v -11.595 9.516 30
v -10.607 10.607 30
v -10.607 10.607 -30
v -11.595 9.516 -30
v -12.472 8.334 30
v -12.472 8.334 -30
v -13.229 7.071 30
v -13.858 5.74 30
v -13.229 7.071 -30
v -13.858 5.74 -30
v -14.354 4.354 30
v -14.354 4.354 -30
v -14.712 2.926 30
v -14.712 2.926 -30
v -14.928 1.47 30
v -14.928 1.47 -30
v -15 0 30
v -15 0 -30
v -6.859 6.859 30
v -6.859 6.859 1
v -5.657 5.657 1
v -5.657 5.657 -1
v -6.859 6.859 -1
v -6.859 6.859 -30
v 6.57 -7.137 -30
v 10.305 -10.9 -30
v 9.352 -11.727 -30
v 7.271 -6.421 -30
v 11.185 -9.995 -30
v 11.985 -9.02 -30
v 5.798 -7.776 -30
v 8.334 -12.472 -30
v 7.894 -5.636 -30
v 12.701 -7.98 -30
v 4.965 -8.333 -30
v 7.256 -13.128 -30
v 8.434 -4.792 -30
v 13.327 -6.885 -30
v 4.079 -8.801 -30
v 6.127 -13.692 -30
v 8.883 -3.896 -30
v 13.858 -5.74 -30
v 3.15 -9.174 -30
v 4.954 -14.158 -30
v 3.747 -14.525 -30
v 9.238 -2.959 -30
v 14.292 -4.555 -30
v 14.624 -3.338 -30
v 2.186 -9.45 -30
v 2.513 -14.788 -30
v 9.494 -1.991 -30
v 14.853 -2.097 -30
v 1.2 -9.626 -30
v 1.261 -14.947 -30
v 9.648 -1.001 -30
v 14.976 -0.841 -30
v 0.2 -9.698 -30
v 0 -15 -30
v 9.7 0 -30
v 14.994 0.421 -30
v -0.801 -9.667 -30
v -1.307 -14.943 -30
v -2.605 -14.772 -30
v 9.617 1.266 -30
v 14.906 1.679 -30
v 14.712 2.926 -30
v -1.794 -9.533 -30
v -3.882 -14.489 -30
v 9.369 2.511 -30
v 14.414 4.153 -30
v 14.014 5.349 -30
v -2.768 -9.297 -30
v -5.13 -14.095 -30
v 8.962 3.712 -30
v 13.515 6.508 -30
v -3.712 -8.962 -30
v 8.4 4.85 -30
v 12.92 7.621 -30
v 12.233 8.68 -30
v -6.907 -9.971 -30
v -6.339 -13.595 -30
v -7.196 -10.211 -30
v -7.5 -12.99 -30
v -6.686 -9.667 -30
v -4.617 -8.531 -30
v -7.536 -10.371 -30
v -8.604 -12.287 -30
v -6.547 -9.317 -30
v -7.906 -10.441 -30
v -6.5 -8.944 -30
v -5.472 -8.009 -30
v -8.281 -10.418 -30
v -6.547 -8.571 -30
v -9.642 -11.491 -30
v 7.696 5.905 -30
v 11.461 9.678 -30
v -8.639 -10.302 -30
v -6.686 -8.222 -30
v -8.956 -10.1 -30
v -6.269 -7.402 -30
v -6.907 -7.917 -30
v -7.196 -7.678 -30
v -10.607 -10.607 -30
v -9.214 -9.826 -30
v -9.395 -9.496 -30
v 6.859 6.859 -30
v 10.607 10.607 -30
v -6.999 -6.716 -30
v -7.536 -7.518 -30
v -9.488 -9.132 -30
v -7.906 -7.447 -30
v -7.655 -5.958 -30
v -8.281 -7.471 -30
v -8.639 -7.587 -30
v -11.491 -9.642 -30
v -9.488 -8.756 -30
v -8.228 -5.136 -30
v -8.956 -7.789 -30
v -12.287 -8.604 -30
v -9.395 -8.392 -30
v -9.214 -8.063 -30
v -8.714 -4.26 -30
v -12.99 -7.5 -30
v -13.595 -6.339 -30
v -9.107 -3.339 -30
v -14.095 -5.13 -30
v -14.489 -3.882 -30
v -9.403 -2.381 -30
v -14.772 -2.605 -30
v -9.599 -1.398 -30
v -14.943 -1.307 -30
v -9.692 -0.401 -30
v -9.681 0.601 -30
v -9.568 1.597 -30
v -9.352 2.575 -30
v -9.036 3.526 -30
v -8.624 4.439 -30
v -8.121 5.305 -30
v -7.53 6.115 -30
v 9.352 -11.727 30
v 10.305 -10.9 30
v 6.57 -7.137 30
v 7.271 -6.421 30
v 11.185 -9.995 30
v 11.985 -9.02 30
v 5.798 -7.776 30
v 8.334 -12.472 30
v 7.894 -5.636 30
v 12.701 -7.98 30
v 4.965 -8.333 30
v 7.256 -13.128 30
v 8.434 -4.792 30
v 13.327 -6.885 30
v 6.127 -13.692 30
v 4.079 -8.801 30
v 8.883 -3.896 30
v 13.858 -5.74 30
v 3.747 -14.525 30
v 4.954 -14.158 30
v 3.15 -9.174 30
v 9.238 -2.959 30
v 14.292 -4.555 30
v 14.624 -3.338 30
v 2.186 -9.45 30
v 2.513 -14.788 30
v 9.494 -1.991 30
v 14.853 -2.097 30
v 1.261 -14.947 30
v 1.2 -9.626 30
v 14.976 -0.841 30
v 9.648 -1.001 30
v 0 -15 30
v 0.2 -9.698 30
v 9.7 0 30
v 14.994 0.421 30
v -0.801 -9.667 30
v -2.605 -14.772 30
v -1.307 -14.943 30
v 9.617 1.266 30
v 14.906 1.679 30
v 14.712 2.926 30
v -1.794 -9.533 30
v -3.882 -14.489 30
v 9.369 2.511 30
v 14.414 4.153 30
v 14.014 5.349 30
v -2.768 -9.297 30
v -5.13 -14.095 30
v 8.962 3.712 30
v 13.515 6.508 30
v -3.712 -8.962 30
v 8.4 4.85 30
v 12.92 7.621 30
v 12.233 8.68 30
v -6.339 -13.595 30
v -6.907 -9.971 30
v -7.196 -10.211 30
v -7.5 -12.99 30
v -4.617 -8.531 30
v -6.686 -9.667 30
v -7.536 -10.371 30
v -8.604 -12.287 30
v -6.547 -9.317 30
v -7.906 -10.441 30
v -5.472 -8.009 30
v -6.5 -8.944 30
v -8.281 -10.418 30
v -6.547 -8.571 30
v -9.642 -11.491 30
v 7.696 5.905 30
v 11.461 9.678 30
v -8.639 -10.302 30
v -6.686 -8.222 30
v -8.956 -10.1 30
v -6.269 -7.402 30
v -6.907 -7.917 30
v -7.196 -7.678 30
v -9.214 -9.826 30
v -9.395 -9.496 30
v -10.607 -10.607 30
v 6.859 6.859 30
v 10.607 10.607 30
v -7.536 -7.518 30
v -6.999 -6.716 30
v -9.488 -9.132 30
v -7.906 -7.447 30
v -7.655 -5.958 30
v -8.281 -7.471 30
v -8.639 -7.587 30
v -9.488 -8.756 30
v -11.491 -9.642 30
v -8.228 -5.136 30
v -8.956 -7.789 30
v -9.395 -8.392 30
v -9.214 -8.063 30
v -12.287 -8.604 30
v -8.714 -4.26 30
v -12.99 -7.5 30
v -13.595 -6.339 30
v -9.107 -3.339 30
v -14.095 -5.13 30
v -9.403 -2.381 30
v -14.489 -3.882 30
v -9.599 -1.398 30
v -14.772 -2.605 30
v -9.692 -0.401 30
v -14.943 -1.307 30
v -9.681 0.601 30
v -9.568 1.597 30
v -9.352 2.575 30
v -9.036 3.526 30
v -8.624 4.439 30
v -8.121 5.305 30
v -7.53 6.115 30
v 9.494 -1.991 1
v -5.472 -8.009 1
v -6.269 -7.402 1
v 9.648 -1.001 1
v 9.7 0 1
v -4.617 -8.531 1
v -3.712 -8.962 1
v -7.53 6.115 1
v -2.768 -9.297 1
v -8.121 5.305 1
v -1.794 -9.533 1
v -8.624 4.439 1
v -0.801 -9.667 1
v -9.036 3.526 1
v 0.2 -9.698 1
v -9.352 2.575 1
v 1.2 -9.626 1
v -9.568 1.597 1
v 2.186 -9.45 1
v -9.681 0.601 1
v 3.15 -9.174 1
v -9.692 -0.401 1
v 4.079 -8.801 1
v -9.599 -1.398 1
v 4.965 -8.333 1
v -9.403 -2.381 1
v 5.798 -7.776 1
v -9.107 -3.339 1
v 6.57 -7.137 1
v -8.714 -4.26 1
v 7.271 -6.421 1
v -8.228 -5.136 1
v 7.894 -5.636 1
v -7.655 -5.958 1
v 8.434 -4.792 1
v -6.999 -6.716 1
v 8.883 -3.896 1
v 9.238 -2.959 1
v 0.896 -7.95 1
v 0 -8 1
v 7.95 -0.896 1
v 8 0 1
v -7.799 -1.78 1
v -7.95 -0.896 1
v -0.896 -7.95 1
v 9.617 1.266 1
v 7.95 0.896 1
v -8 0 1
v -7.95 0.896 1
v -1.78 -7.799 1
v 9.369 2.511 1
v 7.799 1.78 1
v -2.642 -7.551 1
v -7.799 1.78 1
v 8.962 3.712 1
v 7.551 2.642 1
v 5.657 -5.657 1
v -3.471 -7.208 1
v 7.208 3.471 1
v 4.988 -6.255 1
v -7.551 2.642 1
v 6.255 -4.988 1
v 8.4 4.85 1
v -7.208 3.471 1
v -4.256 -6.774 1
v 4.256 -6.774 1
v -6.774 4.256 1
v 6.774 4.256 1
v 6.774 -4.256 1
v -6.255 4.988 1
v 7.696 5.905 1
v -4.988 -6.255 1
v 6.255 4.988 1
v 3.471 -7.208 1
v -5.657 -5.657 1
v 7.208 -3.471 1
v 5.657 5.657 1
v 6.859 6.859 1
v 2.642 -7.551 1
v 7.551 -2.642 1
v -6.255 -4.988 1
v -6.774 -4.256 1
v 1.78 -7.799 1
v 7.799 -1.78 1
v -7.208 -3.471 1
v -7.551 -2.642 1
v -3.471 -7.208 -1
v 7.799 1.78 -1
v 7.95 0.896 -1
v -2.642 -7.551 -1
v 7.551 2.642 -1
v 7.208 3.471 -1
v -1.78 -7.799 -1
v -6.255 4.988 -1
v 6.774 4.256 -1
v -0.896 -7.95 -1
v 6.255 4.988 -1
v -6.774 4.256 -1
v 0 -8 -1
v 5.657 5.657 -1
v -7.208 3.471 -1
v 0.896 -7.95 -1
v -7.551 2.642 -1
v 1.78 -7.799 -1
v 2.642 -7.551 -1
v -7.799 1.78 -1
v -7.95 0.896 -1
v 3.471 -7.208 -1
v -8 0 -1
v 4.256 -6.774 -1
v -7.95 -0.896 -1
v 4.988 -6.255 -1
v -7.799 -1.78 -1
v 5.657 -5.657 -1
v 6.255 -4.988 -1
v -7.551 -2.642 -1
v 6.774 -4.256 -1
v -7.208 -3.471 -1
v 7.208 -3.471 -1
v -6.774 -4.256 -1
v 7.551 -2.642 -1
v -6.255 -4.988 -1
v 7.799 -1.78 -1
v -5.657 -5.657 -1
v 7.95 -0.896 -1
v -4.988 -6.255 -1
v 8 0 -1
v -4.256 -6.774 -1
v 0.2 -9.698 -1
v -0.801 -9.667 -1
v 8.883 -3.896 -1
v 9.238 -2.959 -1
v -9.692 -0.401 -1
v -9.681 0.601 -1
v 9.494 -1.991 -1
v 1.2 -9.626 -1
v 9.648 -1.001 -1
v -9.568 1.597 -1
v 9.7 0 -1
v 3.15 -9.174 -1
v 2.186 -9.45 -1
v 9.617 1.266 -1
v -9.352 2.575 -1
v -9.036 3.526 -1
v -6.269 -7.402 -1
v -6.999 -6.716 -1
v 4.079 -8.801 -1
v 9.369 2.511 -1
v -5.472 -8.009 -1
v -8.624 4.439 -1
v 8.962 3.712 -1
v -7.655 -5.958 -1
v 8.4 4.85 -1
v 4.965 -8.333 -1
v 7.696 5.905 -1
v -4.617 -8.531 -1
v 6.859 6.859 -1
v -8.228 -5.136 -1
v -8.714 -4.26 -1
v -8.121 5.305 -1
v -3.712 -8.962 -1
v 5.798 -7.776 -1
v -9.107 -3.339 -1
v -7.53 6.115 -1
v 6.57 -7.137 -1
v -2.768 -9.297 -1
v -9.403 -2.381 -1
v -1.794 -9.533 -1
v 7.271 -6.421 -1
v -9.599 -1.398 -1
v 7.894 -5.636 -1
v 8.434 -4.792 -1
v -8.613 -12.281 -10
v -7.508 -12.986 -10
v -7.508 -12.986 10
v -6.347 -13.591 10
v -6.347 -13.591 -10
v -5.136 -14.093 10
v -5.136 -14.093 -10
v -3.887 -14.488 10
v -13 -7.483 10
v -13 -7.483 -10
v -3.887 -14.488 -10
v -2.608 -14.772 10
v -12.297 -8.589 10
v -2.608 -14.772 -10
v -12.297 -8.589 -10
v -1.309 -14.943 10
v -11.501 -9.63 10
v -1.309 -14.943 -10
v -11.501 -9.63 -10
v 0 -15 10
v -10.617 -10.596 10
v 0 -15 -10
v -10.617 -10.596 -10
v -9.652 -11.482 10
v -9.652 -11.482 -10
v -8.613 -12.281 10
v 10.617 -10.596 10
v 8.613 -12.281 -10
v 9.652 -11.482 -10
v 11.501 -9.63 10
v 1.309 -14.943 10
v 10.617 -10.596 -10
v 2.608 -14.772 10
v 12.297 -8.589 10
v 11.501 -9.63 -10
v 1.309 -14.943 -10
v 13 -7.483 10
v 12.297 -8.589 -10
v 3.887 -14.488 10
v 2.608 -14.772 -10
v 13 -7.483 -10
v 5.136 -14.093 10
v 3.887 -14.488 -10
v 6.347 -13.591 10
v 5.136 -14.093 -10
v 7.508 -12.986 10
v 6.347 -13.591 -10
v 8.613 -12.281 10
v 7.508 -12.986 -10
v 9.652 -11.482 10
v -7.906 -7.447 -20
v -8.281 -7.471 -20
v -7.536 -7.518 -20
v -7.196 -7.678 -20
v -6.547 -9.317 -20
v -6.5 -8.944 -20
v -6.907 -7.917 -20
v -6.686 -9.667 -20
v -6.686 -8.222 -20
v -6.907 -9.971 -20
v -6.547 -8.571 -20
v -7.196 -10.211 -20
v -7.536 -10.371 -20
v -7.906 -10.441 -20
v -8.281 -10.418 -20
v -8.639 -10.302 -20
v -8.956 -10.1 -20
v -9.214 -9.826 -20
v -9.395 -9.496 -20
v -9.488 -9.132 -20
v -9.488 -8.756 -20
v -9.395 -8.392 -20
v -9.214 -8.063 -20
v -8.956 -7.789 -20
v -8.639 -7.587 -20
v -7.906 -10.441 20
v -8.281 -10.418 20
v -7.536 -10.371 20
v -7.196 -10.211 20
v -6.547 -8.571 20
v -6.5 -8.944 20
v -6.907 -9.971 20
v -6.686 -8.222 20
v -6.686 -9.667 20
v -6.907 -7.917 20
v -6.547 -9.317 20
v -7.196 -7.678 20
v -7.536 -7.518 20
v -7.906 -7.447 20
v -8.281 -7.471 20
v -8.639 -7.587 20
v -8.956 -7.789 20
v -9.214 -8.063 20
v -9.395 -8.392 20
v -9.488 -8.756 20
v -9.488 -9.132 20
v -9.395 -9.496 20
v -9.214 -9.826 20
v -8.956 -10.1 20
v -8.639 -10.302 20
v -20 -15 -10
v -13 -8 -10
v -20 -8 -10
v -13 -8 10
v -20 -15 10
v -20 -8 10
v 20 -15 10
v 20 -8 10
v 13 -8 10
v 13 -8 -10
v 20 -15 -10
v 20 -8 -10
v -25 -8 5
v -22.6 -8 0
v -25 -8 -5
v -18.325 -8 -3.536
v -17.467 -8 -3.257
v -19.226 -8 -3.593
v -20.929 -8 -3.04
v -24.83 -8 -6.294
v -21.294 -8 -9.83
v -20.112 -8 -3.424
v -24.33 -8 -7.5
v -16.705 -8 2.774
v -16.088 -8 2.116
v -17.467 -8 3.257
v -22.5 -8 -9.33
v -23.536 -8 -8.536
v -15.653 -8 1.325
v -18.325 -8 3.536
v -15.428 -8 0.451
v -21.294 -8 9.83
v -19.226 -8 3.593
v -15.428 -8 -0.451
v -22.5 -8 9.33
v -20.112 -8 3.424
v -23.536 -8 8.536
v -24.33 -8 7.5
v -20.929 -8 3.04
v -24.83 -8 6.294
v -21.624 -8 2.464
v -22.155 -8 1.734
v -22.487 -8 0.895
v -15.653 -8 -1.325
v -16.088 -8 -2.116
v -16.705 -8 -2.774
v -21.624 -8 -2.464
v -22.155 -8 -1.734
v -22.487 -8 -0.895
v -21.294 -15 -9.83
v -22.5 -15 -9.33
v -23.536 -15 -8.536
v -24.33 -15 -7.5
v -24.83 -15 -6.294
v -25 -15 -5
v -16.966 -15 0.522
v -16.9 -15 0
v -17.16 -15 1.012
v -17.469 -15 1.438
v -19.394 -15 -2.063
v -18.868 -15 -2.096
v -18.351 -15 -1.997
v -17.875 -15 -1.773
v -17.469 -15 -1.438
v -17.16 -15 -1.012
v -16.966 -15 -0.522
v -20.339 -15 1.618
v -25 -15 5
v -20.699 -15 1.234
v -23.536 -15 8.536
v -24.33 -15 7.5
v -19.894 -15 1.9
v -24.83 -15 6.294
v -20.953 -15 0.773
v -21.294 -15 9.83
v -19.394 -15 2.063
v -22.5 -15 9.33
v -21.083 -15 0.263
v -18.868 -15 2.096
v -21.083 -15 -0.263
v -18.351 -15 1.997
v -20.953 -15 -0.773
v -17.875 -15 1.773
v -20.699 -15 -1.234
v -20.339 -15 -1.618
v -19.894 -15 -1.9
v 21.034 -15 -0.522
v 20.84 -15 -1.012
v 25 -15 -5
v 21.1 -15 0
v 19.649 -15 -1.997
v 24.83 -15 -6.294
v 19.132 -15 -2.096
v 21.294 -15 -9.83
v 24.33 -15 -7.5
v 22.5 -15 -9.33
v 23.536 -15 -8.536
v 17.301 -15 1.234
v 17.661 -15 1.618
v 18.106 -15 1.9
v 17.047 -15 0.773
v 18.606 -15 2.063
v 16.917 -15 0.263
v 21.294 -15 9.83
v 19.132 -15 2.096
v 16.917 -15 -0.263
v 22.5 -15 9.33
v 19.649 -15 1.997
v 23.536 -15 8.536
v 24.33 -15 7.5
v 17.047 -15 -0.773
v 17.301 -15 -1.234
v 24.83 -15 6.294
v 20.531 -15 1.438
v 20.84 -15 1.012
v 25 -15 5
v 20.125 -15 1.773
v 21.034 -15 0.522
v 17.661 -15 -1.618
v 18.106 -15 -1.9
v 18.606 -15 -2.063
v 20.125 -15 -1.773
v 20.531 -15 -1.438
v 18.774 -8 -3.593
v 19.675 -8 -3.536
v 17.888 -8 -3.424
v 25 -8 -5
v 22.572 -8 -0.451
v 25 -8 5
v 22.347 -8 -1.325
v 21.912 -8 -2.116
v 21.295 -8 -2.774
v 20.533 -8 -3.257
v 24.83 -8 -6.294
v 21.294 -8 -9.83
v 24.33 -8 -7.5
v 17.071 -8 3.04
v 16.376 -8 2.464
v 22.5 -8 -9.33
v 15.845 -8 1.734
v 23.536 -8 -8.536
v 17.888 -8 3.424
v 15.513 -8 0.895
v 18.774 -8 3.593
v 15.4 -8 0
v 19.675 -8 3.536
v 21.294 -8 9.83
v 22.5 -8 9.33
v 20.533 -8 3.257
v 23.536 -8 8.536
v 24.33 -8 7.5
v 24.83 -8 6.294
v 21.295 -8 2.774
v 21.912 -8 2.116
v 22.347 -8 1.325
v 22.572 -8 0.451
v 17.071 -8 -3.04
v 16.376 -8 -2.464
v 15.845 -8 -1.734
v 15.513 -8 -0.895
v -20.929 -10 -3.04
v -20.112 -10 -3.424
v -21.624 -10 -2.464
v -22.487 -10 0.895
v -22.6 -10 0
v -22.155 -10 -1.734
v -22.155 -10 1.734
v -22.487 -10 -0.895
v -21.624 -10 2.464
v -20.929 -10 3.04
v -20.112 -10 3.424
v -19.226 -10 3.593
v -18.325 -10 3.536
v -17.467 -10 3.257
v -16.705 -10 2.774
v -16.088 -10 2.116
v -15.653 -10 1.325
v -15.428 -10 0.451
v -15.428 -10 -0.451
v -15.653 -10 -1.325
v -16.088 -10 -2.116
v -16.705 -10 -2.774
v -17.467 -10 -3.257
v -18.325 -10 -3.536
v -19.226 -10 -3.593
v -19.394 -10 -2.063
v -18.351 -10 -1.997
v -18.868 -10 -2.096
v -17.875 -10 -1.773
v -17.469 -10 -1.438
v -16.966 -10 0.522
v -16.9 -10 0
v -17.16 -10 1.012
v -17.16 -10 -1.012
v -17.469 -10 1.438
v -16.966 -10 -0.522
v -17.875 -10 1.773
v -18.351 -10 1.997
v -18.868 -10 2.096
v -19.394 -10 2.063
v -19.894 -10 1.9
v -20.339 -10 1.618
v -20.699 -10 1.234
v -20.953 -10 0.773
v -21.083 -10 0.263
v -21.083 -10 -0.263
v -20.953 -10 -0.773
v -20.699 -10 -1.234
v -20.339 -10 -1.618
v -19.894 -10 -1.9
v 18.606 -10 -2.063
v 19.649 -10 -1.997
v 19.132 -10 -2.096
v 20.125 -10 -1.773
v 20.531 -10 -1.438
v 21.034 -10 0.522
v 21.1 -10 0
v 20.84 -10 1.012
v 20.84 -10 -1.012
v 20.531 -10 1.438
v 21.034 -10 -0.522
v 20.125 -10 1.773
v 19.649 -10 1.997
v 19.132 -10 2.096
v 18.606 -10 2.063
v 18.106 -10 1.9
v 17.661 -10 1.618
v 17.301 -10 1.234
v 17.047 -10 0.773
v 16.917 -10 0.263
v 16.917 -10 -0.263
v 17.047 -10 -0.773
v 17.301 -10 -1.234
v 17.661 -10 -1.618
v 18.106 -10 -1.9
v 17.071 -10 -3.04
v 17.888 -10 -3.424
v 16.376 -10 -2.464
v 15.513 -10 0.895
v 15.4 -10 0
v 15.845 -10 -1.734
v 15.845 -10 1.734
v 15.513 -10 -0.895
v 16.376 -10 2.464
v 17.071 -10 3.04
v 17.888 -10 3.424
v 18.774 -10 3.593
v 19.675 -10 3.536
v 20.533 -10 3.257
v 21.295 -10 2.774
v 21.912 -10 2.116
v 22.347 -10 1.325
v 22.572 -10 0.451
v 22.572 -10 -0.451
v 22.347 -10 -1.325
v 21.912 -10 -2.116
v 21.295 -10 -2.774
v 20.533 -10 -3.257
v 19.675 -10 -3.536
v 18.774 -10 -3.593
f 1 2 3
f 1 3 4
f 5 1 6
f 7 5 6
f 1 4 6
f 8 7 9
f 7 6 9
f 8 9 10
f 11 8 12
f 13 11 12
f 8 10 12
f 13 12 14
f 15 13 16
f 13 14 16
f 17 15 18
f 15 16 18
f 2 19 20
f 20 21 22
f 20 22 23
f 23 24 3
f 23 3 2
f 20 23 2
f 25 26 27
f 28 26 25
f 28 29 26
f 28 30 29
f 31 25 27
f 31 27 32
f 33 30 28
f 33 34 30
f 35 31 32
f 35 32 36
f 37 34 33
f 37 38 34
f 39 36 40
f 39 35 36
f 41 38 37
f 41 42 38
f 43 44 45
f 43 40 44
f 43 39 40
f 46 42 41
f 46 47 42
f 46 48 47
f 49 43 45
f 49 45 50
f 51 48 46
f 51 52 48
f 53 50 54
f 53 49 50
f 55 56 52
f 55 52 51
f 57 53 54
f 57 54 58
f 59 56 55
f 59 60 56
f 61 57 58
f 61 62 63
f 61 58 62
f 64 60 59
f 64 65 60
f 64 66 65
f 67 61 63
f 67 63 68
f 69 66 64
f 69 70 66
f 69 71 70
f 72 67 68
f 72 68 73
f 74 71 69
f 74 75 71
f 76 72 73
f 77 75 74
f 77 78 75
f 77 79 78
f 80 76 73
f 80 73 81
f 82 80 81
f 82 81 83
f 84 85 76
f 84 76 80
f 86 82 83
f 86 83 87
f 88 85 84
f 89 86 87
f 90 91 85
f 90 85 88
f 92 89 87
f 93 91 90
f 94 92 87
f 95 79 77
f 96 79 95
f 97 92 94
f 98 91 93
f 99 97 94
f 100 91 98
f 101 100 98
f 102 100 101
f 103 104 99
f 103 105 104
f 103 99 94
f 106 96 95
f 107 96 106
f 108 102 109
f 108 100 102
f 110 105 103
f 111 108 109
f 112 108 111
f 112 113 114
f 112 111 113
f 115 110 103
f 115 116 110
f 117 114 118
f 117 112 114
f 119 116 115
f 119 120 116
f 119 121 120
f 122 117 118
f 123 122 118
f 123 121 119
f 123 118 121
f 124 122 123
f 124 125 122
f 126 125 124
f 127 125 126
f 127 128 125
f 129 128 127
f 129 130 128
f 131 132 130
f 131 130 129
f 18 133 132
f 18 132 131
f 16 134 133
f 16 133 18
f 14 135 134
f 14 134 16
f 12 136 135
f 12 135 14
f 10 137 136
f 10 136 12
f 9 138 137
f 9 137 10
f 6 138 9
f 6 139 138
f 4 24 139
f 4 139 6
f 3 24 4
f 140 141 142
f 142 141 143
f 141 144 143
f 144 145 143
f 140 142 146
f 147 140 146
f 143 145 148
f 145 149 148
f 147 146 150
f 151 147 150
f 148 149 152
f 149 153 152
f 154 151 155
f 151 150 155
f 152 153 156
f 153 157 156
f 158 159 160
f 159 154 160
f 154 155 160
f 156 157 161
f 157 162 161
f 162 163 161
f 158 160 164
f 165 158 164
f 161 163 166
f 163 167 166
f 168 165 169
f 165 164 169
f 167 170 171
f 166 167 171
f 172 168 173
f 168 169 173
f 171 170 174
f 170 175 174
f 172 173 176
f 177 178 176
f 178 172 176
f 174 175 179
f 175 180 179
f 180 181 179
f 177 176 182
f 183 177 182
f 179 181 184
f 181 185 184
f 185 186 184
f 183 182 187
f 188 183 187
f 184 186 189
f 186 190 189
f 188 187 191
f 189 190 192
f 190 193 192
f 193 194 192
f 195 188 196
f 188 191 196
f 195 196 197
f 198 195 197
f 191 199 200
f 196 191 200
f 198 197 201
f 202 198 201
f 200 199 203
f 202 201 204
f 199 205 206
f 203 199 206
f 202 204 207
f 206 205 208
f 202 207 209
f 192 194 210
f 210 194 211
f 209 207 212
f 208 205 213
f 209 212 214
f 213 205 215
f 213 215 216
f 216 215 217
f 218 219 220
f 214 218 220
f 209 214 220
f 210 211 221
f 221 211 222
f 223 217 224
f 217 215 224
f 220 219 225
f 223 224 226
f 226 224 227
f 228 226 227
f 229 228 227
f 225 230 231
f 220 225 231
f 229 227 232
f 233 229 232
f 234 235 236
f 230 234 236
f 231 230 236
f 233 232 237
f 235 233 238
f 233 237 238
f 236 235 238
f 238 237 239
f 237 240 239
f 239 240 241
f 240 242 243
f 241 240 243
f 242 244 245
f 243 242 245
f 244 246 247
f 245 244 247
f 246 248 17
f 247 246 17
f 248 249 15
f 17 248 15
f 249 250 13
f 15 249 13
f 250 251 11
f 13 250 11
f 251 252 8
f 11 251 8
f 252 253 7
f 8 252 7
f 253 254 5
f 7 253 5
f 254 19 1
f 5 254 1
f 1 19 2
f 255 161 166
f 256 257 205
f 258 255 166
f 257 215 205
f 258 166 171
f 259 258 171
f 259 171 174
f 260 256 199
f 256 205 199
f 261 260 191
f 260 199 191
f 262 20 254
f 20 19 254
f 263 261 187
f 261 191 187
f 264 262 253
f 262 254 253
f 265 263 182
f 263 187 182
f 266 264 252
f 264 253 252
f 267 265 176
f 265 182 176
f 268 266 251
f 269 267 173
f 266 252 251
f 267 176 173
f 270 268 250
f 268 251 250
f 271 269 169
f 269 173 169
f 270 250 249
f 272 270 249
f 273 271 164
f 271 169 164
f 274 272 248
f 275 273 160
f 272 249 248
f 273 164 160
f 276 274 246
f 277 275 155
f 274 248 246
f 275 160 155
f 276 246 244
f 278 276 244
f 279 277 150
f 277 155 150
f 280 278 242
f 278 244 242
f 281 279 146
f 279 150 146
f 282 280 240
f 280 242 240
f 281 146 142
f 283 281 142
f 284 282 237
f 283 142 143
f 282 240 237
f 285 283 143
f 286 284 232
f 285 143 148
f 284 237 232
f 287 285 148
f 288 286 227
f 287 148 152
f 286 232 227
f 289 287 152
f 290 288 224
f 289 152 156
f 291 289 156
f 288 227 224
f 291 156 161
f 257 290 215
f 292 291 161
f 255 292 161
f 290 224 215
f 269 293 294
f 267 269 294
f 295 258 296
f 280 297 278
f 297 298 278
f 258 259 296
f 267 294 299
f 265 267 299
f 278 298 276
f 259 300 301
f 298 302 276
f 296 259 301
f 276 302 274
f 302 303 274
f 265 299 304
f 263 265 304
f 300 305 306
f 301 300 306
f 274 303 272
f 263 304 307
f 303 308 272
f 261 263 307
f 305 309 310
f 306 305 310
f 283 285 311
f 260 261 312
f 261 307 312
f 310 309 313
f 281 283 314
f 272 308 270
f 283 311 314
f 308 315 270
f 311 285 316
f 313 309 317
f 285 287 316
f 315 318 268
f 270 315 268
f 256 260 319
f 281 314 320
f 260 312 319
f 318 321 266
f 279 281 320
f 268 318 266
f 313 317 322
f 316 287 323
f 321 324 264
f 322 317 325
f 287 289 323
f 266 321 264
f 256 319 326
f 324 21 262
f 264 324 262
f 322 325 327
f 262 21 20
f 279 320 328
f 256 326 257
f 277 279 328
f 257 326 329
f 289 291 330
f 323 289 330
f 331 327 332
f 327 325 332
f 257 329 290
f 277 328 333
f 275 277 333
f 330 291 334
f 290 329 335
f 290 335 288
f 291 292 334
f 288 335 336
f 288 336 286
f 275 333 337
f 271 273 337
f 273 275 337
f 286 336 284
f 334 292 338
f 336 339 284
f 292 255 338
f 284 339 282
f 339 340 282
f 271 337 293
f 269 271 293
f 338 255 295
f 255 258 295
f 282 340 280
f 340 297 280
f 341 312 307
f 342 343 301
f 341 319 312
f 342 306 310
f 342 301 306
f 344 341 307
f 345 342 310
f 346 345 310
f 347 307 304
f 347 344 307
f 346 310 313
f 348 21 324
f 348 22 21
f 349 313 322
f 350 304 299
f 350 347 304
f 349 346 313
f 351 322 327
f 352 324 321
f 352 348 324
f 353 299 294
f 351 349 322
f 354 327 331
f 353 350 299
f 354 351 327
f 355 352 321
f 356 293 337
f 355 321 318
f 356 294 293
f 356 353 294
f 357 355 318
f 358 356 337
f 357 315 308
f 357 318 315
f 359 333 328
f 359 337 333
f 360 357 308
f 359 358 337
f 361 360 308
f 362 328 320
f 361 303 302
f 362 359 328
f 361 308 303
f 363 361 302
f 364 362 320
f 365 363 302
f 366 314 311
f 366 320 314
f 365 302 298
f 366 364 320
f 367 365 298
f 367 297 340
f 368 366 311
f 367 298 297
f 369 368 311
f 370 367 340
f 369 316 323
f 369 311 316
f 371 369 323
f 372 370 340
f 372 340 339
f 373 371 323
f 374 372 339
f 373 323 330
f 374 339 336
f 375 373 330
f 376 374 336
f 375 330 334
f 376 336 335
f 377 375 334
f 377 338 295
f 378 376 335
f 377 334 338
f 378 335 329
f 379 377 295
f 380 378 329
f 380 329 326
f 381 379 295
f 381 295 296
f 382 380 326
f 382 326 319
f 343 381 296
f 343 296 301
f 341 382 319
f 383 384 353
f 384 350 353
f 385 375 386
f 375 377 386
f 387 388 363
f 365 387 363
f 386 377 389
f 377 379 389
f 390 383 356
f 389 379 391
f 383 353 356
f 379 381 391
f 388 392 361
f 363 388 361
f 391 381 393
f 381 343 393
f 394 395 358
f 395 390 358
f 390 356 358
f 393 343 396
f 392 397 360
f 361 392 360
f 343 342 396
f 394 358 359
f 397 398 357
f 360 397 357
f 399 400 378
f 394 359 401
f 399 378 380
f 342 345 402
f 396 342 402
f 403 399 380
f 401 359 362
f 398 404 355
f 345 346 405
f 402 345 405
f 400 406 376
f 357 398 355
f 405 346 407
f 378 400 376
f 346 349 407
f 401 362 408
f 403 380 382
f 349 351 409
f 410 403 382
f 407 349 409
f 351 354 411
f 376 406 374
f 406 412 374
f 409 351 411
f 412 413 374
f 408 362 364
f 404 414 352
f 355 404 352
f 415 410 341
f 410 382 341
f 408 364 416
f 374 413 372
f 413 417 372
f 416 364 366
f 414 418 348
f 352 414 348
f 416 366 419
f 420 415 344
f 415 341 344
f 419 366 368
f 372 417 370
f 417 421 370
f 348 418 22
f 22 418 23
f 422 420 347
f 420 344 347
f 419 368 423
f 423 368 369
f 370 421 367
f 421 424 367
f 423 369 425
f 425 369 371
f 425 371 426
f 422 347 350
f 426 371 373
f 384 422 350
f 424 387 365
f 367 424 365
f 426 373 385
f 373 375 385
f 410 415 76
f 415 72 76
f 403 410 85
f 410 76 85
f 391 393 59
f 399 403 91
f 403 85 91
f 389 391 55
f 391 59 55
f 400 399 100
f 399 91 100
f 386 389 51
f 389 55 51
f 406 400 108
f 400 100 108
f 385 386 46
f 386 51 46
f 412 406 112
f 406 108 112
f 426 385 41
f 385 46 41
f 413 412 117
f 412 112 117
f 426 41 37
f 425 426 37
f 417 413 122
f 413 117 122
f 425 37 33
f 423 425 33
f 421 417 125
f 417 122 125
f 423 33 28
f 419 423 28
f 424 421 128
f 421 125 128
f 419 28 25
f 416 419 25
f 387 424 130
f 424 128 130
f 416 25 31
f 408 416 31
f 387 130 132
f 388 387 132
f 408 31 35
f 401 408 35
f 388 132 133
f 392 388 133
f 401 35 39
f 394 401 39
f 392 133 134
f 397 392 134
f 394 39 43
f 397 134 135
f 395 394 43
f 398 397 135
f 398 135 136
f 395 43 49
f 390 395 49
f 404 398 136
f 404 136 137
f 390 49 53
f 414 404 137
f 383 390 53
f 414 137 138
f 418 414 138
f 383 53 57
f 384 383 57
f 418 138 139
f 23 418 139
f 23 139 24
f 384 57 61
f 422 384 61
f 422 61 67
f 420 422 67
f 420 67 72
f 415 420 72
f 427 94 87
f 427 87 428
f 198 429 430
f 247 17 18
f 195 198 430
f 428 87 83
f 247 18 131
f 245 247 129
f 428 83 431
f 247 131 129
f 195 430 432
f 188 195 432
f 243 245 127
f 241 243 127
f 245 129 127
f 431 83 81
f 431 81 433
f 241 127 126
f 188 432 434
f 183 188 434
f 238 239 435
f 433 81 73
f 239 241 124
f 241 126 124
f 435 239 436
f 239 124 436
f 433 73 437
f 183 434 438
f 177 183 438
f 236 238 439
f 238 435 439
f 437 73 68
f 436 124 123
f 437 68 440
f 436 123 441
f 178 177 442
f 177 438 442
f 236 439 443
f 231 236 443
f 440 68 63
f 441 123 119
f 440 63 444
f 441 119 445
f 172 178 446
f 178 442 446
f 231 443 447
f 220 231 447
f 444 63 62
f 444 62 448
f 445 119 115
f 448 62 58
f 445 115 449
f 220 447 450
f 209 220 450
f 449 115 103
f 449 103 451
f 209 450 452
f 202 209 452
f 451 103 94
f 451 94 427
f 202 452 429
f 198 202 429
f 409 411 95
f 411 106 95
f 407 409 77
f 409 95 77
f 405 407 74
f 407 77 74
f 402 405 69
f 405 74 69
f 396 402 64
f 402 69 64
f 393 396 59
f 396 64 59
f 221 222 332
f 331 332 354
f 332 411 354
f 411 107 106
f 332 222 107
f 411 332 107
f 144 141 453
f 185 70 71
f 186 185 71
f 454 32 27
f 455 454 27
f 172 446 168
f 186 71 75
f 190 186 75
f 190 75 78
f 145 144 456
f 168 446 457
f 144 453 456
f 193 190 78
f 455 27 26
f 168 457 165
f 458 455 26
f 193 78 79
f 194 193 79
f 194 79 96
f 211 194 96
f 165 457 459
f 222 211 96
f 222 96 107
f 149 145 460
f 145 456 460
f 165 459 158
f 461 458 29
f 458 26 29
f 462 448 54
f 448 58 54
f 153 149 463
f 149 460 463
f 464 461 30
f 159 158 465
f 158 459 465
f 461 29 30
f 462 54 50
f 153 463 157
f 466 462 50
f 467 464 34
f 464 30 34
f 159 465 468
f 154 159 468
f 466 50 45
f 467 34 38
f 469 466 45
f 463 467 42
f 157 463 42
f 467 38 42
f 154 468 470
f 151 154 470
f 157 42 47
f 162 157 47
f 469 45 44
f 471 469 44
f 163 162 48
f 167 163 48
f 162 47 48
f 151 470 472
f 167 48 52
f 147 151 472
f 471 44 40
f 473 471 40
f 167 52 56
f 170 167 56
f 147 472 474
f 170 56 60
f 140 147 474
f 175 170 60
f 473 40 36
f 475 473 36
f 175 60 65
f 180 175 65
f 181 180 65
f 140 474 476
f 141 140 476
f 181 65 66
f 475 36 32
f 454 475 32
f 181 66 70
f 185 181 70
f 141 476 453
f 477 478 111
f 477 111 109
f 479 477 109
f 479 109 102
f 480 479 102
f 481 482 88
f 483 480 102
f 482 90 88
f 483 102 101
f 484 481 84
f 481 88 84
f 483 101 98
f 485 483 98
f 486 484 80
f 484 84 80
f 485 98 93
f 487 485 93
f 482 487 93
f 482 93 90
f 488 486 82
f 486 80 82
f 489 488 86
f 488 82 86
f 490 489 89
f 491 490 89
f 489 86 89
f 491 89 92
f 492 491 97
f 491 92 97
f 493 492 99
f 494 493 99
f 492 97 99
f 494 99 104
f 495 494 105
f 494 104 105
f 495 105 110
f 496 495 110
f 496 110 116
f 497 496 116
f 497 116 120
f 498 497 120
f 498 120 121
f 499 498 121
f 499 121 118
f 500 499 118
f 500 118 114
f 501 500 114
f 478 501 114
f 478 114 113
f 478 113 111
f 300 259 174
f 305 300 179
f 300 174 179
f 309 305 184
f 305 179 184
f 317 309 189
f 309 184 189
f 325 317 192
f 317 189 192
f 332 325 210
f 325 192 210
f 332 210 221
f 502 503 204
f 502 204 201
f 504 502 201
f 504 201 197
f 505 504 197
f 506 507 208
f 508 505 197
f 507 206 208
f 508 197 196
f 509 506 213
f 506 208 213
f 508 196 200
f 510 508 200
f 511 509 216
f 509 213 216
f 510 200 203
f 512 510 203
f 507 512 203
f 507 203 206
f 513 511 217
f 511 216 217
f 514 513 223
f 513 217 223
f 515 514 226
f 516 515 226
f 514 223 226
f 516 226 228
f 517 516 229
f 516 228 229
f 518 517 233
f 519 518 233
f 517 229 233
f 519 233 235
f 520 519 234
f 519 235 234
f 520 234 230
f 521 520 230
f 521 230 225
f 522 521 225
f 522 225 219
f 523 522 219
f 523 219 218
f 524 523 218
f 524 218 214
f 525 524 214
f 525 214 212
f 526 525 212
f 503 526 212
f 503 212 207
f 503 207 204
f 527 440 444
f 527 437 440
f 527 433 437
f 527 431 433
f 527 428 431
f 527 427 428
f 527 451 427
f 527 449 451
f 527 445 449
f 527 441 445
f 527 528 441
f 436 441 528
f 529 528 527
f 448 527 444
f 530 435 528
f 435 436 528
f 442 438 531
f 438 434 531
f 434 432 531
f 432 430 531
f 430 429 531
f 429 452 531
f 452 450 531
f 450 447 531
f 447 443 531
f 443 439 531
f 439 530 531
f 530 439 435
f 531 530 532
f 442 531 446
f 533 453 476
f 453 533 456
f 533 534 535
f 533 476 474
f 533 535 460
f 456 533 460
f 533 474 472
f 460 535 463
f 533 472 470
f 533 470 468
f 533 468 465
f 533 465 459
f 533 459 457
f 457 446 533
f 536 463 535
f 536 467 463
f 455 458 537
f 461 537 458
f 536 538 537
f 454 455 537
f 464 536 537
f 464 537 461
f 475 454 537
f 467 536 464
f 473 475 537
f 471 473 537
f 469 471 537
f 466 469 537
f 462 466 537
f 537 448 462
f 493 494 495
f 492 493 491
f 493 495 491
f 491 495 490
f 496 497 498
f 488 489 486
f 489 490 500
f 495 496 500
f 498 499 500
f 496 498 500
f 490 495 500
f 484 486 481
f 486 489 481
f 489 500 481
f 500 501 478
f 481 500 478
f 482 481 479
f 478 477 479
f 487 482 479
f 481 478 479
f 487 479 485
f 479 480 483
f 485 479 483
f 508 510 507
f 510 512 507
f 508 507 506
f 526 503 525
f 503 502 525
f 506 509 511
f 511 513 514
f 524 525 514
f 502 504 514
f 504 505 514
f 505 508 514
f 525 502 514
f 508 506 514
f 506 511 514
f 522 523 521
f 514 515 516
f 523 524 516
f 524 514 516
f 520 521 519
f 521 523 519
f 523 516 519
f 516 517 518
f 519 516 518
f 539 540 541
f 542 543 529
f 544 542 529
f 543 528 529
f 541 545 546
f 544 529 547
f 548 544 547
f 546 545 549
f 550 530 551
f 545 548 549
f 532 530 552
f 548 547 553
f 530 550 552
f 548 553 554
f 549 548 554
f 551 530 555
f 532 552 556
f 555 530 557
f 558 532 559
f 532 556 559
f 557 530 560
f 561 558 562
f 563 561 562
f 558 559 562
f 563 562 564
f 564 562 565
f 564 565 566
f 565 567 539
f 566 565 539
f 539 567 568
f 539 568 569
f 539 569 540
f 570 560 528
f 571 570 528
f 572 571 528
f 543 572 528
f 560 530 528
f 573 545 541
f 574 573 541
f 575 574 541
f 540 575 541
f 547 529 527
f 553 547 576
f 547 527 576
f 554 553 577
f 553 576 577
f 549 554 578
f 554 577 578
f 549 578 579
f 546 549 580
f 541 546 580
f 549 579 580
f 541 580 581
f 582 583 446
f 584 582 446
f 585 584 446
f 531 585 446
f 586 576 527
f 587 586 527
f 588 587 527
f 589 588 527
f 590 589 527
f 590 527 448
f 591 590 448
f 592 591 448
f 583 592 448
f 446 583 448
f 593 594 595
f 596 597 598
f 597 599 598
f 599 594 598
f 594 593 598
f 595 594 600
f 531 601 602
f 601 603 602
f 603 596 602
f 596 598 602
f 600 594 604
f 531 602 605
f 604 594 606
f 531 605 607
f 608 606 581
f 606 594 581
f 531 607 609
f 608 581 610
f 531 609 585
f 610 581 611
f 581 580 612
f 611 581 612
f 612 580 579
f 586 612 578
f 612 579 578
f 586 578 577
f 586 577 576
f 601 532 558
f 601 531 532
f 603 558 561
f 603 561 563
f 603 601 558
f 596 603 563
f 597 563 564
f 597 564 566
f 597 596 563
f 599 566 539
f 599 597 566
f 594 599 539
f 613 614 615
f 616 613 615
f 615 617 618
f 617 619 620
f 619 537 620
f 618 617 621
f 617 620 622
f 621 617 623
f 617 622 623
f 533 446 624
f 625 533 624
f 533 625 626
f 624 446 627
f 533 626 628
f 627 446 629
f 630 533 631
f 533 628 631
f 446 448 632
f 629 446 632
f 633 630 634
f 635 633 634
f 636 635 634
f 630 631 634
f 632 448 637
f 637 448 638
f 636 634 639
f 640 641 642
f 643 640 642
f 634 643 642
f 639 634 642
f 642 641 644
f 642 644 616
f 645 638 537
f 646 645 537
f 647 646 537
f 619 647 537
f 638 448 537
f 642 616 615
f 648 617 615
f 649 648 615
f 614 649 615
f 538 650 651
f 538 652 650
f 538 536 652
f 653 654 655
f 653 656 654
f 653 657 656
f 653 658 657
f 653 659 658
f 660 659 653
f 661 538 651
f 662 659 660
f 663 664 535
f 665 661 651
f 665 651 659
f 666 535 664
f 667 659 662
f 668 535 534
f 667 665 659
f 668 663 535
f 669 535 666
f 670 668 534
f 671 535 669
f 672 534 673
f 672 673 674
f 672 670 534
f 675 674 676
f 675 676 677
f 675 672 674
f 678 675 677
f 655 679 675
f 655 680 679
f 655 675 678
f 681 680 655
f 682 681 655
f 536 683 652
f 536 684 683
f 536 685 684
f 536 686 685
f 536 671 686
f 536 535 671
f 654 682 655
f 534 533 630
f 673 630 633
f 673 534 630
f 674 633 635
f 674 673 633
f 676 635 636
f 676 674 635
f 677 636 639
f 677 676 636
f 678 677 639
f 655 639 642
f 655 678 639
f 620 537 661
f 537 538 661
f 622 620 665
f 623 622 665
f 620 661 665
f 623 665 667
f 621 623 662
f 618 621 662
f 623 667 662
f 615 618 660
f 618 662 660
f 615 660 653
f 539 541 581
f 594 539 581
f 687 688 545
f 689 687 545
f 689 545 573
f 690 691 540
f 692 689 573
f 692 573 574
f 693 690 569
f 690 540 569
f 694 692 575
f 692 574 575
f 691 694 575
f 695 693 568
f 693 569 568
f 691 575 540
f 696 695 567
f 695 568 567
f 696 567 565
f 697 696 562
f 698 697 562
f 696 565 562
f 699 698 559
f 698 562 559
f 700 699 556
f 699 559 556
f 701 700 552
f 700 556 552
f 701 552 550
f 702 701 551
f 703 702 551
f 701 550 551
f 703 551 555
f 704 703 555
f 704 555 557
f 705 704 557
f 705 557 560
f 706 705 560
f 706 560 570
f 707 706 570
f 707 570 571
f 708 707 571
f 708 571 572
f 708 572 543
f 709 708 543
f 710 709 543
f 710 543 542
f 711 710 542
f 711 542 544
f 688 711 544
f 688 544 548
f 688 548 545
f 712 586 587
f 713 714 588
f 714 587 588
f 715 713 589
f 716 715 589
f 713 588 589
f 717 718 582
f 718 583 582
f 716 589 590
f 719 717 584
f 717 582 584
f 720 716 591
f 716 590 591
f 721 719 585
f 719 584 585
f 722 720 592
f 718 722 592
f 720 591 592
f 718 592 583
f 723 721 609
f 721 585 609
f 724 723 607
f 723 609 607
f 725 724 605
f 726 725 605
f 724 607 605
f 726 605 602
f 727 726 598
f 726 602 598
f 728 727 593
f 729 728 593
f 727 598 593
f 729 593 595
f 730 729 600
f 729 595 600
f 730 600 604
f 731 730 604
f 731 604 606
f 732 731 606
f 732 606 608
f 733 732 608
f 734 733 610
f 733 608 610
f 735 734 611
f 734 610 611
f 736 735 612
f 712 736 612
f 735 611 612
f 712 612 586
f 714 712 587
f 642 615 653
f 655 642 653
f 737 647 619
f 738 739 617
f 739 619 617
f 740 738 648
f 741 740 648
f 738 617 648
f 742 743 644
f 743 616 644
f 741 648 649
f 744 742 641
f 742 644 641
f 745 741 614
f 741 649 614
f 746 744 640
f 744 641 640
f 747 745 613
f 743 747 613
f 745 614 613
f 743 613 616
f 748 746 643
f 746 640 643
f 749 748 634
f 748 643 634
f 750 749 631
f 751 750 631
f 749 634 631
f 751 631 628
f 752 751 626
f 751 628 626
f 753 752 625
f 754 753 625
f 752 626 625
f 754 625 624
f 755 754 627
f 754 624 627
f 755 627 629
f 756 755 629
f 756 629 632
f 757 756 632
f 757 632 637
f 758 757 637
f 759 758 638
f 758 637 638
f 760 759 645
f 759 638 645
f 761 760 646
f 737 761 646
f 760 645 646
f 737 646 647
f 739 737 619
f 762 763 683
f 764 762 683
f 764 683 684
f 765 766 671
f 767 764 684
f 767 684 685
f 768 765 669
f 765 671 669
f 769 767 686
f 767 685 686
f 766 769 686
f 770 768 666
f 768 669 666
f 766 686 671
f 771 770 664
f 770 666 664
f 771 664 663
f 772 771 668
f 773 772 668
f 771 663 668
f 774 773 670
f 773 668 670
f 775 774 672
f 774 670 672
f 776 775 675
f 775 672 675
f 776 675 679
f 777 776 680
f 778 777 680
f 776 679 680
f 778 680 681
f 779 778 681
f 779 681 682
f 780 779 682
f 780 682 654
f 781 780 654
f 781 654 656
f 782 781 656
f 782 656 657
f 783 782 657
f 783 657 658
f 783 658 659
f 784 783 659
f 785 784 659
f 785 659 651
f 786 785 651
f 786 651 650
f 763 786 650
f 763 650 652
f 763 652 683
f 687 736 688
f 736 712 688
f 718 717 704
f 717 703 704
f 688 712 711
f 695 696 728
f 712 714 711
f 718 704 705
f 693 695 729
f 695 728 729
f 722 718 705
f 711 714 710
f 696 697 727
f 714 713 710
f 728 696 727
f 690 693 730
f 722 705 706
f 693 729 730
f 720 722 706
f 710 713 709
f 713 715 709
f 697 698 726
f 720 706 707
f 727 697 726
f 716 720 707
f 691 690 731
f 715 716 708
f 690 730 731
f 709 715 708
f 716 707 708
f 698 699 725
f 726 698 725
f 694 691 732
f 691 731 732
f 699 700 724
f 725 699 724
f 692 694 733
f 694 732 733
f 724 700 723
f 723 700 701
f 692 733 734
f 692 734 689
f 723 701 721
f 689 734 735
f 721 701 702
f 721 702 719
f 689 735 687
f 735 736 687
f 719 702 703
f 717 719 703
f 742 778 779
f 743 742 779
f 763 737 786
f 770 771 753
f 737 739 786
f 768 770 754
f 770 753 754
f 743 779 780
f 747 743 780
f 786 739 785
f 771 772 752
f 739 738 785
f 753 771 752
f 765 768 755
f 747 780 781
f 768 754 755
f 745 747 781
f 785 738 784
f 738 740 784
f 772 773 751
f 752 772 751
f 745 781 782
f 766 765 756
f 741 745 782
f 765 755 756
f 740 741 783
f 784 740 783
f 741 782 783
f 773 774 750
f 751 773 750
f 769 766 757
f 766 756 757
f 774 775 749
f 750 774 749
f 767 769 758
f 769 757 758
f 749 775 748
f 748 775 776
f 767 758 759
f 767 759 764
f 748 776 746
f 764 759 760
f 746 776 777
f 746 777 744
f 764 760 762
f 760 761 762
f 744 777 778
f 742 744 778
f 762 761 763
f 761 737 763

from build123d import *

# Parameters (mm, degrees)
PAD_DEPTH       = 30
SKETCH004_R     = 9.7
POCKET_DEPTH    = 29
SKETCH005_R     = 9.7
POCKET001_DEPTH = 29
SKETCH006_R     = 1.5
POCKET002_DEPTH = 10
SKETCH007_R     = 1.5
POCKET003_DEPTH = 10
PAD001_DEPTH    = 10
SKETCH008_R     = 2.1
POCKET004_DEPTH = 7
SKETCH009_R     = 3.6
POCKET005_DEPTH = 2
FILLET_R        = 5


with BuildPart() as pocket003:
    # Sketch → Pad (new body, symmetric)
    with BuildSketch(Plane.XY):
        with BuildLine():
            ThreePointArc((-5.656854, 5.656854), (0, -8), (5.656854, 5.656854))
            Line((10.606602, 10.606602), (5.656854, 5.656854))
            ThreePointArc((0, -15), (13.858193, -5.740251), (10.606602, 10.606602))
            Line((-4.3e-05, -15), (0, -15))
            ThreePointArc((-15, -4.3e-05), (-10.606602, -10.606602), (-4.3e-05, -15))
            Line((-15, 0), (-15, -4.3e-05))
            ThreePointArc((-10.606602, 10.606602), (-13.858193, 5.740251), (-15, 0))
            Line((-5.656854, 5.656854), (-10.606602, 10.606602))
        make_face()
    extrude(amount=PAD_DEPTH, both=True)

    # Sketch004 → Pocket (cut)
    with BuildSketch(Plane.XY.offset(30)):
        Circle(SKETCH004_R)
    extrude(amount=-POCKET_DEPTH, mode=Mode.SUBTRACT)

    # Sketch005 → Pocket001 (cut)
    with BuildSketch(Plane(origin=(0, 0, -30), x_dir=(1, 0, 0), z_dir=(0, 0, -1))):
        Circle(SKETCH005_R)
    extrude(amount=-POCKET001_DEPTH, mode=Mode.SUBTRACT)

    # Sketch006 → Pocket002 (cut)
    with BuildSketch(Plane.XY.offset(30)):
        with Locations((-8, -8.944272)):
            Circle(SKETCH006_R)
    extrude(amount=-POCKET002_DEPTH, mode=Mode.SUBTRACT)

    # Sketch007 → Pocket003 (cut)
    with BuildSketch(Plane(origin=(0, 0, -30), x_dir=(1, 0, 0), z_dir=(0, 0, -1))):
        with Locations((-8, 8.944272)):
            Circle(SKETCH007_R)
    extrude(amount=-POCKET003_DEPTH, mode=Mode.SUBTRACT)


with BuildPart() as fusion:
    # Sketch003 → Pad001 (new body, symmetric)
    with BuildSketch(Plane.XY):
        with BuildLine():
            ThreePointArc((-13, 0), (0, -13), (13, 0))
            Line((13, 0), (13, -8))
            Line((13, -8), (25, -8))
            Line((25, -15), (25, -8))
            Line((-25, -15), (25, -15))
            Line((-25, -8), (-25, -15))
            Line((-13, -8), (-25, -8))
            Line((-13, 0), (-13, -8))
        make_face()
    extrude(amount=PAD001_DEPTH, both=True)

    # Sketch008 → Pocket004 (cut)
    with BuildSketch(Plane.XZ.offset(15)):
        with Locations((-19, 0)):
            Circle(SKETCH008_R)
        with Locations((19, 0)):
            Circle(SKETCH008_R)
    extrude(amount=-POCKET004_DEPTH, mode=Mode.SUBTRACT)

    # Sketch009 → Pocket005 (cut)
    with BuildSketch(Plane(origin=(0, -8, 0), x_dir=(-1, 0, 0), z_dir=(0, 1, 0))):
        with Locations((-19, 0)):
            Circle(SKETCH009_R)
        with Locations((19, 0)):
            Circle(SKETCH009_R)
    extrude(amount=-POCKET005_DEPTH, mode=Mode.SUBTRACT)

    # Fillet
    fillet_edges = [fusion.edges().sort_by_distance(p)[0] for p in [
        (25, -11.5, 10),
        (25, -11.5, -10),
        (-25, -11.5, 10),
        (-25, -11.5, -10),
    ]]
    fillet(fillet_edges, radius=FILLET_R)

    # Fusion: union Pocket003
    add(pocket003.part)


solid = fusion.part
